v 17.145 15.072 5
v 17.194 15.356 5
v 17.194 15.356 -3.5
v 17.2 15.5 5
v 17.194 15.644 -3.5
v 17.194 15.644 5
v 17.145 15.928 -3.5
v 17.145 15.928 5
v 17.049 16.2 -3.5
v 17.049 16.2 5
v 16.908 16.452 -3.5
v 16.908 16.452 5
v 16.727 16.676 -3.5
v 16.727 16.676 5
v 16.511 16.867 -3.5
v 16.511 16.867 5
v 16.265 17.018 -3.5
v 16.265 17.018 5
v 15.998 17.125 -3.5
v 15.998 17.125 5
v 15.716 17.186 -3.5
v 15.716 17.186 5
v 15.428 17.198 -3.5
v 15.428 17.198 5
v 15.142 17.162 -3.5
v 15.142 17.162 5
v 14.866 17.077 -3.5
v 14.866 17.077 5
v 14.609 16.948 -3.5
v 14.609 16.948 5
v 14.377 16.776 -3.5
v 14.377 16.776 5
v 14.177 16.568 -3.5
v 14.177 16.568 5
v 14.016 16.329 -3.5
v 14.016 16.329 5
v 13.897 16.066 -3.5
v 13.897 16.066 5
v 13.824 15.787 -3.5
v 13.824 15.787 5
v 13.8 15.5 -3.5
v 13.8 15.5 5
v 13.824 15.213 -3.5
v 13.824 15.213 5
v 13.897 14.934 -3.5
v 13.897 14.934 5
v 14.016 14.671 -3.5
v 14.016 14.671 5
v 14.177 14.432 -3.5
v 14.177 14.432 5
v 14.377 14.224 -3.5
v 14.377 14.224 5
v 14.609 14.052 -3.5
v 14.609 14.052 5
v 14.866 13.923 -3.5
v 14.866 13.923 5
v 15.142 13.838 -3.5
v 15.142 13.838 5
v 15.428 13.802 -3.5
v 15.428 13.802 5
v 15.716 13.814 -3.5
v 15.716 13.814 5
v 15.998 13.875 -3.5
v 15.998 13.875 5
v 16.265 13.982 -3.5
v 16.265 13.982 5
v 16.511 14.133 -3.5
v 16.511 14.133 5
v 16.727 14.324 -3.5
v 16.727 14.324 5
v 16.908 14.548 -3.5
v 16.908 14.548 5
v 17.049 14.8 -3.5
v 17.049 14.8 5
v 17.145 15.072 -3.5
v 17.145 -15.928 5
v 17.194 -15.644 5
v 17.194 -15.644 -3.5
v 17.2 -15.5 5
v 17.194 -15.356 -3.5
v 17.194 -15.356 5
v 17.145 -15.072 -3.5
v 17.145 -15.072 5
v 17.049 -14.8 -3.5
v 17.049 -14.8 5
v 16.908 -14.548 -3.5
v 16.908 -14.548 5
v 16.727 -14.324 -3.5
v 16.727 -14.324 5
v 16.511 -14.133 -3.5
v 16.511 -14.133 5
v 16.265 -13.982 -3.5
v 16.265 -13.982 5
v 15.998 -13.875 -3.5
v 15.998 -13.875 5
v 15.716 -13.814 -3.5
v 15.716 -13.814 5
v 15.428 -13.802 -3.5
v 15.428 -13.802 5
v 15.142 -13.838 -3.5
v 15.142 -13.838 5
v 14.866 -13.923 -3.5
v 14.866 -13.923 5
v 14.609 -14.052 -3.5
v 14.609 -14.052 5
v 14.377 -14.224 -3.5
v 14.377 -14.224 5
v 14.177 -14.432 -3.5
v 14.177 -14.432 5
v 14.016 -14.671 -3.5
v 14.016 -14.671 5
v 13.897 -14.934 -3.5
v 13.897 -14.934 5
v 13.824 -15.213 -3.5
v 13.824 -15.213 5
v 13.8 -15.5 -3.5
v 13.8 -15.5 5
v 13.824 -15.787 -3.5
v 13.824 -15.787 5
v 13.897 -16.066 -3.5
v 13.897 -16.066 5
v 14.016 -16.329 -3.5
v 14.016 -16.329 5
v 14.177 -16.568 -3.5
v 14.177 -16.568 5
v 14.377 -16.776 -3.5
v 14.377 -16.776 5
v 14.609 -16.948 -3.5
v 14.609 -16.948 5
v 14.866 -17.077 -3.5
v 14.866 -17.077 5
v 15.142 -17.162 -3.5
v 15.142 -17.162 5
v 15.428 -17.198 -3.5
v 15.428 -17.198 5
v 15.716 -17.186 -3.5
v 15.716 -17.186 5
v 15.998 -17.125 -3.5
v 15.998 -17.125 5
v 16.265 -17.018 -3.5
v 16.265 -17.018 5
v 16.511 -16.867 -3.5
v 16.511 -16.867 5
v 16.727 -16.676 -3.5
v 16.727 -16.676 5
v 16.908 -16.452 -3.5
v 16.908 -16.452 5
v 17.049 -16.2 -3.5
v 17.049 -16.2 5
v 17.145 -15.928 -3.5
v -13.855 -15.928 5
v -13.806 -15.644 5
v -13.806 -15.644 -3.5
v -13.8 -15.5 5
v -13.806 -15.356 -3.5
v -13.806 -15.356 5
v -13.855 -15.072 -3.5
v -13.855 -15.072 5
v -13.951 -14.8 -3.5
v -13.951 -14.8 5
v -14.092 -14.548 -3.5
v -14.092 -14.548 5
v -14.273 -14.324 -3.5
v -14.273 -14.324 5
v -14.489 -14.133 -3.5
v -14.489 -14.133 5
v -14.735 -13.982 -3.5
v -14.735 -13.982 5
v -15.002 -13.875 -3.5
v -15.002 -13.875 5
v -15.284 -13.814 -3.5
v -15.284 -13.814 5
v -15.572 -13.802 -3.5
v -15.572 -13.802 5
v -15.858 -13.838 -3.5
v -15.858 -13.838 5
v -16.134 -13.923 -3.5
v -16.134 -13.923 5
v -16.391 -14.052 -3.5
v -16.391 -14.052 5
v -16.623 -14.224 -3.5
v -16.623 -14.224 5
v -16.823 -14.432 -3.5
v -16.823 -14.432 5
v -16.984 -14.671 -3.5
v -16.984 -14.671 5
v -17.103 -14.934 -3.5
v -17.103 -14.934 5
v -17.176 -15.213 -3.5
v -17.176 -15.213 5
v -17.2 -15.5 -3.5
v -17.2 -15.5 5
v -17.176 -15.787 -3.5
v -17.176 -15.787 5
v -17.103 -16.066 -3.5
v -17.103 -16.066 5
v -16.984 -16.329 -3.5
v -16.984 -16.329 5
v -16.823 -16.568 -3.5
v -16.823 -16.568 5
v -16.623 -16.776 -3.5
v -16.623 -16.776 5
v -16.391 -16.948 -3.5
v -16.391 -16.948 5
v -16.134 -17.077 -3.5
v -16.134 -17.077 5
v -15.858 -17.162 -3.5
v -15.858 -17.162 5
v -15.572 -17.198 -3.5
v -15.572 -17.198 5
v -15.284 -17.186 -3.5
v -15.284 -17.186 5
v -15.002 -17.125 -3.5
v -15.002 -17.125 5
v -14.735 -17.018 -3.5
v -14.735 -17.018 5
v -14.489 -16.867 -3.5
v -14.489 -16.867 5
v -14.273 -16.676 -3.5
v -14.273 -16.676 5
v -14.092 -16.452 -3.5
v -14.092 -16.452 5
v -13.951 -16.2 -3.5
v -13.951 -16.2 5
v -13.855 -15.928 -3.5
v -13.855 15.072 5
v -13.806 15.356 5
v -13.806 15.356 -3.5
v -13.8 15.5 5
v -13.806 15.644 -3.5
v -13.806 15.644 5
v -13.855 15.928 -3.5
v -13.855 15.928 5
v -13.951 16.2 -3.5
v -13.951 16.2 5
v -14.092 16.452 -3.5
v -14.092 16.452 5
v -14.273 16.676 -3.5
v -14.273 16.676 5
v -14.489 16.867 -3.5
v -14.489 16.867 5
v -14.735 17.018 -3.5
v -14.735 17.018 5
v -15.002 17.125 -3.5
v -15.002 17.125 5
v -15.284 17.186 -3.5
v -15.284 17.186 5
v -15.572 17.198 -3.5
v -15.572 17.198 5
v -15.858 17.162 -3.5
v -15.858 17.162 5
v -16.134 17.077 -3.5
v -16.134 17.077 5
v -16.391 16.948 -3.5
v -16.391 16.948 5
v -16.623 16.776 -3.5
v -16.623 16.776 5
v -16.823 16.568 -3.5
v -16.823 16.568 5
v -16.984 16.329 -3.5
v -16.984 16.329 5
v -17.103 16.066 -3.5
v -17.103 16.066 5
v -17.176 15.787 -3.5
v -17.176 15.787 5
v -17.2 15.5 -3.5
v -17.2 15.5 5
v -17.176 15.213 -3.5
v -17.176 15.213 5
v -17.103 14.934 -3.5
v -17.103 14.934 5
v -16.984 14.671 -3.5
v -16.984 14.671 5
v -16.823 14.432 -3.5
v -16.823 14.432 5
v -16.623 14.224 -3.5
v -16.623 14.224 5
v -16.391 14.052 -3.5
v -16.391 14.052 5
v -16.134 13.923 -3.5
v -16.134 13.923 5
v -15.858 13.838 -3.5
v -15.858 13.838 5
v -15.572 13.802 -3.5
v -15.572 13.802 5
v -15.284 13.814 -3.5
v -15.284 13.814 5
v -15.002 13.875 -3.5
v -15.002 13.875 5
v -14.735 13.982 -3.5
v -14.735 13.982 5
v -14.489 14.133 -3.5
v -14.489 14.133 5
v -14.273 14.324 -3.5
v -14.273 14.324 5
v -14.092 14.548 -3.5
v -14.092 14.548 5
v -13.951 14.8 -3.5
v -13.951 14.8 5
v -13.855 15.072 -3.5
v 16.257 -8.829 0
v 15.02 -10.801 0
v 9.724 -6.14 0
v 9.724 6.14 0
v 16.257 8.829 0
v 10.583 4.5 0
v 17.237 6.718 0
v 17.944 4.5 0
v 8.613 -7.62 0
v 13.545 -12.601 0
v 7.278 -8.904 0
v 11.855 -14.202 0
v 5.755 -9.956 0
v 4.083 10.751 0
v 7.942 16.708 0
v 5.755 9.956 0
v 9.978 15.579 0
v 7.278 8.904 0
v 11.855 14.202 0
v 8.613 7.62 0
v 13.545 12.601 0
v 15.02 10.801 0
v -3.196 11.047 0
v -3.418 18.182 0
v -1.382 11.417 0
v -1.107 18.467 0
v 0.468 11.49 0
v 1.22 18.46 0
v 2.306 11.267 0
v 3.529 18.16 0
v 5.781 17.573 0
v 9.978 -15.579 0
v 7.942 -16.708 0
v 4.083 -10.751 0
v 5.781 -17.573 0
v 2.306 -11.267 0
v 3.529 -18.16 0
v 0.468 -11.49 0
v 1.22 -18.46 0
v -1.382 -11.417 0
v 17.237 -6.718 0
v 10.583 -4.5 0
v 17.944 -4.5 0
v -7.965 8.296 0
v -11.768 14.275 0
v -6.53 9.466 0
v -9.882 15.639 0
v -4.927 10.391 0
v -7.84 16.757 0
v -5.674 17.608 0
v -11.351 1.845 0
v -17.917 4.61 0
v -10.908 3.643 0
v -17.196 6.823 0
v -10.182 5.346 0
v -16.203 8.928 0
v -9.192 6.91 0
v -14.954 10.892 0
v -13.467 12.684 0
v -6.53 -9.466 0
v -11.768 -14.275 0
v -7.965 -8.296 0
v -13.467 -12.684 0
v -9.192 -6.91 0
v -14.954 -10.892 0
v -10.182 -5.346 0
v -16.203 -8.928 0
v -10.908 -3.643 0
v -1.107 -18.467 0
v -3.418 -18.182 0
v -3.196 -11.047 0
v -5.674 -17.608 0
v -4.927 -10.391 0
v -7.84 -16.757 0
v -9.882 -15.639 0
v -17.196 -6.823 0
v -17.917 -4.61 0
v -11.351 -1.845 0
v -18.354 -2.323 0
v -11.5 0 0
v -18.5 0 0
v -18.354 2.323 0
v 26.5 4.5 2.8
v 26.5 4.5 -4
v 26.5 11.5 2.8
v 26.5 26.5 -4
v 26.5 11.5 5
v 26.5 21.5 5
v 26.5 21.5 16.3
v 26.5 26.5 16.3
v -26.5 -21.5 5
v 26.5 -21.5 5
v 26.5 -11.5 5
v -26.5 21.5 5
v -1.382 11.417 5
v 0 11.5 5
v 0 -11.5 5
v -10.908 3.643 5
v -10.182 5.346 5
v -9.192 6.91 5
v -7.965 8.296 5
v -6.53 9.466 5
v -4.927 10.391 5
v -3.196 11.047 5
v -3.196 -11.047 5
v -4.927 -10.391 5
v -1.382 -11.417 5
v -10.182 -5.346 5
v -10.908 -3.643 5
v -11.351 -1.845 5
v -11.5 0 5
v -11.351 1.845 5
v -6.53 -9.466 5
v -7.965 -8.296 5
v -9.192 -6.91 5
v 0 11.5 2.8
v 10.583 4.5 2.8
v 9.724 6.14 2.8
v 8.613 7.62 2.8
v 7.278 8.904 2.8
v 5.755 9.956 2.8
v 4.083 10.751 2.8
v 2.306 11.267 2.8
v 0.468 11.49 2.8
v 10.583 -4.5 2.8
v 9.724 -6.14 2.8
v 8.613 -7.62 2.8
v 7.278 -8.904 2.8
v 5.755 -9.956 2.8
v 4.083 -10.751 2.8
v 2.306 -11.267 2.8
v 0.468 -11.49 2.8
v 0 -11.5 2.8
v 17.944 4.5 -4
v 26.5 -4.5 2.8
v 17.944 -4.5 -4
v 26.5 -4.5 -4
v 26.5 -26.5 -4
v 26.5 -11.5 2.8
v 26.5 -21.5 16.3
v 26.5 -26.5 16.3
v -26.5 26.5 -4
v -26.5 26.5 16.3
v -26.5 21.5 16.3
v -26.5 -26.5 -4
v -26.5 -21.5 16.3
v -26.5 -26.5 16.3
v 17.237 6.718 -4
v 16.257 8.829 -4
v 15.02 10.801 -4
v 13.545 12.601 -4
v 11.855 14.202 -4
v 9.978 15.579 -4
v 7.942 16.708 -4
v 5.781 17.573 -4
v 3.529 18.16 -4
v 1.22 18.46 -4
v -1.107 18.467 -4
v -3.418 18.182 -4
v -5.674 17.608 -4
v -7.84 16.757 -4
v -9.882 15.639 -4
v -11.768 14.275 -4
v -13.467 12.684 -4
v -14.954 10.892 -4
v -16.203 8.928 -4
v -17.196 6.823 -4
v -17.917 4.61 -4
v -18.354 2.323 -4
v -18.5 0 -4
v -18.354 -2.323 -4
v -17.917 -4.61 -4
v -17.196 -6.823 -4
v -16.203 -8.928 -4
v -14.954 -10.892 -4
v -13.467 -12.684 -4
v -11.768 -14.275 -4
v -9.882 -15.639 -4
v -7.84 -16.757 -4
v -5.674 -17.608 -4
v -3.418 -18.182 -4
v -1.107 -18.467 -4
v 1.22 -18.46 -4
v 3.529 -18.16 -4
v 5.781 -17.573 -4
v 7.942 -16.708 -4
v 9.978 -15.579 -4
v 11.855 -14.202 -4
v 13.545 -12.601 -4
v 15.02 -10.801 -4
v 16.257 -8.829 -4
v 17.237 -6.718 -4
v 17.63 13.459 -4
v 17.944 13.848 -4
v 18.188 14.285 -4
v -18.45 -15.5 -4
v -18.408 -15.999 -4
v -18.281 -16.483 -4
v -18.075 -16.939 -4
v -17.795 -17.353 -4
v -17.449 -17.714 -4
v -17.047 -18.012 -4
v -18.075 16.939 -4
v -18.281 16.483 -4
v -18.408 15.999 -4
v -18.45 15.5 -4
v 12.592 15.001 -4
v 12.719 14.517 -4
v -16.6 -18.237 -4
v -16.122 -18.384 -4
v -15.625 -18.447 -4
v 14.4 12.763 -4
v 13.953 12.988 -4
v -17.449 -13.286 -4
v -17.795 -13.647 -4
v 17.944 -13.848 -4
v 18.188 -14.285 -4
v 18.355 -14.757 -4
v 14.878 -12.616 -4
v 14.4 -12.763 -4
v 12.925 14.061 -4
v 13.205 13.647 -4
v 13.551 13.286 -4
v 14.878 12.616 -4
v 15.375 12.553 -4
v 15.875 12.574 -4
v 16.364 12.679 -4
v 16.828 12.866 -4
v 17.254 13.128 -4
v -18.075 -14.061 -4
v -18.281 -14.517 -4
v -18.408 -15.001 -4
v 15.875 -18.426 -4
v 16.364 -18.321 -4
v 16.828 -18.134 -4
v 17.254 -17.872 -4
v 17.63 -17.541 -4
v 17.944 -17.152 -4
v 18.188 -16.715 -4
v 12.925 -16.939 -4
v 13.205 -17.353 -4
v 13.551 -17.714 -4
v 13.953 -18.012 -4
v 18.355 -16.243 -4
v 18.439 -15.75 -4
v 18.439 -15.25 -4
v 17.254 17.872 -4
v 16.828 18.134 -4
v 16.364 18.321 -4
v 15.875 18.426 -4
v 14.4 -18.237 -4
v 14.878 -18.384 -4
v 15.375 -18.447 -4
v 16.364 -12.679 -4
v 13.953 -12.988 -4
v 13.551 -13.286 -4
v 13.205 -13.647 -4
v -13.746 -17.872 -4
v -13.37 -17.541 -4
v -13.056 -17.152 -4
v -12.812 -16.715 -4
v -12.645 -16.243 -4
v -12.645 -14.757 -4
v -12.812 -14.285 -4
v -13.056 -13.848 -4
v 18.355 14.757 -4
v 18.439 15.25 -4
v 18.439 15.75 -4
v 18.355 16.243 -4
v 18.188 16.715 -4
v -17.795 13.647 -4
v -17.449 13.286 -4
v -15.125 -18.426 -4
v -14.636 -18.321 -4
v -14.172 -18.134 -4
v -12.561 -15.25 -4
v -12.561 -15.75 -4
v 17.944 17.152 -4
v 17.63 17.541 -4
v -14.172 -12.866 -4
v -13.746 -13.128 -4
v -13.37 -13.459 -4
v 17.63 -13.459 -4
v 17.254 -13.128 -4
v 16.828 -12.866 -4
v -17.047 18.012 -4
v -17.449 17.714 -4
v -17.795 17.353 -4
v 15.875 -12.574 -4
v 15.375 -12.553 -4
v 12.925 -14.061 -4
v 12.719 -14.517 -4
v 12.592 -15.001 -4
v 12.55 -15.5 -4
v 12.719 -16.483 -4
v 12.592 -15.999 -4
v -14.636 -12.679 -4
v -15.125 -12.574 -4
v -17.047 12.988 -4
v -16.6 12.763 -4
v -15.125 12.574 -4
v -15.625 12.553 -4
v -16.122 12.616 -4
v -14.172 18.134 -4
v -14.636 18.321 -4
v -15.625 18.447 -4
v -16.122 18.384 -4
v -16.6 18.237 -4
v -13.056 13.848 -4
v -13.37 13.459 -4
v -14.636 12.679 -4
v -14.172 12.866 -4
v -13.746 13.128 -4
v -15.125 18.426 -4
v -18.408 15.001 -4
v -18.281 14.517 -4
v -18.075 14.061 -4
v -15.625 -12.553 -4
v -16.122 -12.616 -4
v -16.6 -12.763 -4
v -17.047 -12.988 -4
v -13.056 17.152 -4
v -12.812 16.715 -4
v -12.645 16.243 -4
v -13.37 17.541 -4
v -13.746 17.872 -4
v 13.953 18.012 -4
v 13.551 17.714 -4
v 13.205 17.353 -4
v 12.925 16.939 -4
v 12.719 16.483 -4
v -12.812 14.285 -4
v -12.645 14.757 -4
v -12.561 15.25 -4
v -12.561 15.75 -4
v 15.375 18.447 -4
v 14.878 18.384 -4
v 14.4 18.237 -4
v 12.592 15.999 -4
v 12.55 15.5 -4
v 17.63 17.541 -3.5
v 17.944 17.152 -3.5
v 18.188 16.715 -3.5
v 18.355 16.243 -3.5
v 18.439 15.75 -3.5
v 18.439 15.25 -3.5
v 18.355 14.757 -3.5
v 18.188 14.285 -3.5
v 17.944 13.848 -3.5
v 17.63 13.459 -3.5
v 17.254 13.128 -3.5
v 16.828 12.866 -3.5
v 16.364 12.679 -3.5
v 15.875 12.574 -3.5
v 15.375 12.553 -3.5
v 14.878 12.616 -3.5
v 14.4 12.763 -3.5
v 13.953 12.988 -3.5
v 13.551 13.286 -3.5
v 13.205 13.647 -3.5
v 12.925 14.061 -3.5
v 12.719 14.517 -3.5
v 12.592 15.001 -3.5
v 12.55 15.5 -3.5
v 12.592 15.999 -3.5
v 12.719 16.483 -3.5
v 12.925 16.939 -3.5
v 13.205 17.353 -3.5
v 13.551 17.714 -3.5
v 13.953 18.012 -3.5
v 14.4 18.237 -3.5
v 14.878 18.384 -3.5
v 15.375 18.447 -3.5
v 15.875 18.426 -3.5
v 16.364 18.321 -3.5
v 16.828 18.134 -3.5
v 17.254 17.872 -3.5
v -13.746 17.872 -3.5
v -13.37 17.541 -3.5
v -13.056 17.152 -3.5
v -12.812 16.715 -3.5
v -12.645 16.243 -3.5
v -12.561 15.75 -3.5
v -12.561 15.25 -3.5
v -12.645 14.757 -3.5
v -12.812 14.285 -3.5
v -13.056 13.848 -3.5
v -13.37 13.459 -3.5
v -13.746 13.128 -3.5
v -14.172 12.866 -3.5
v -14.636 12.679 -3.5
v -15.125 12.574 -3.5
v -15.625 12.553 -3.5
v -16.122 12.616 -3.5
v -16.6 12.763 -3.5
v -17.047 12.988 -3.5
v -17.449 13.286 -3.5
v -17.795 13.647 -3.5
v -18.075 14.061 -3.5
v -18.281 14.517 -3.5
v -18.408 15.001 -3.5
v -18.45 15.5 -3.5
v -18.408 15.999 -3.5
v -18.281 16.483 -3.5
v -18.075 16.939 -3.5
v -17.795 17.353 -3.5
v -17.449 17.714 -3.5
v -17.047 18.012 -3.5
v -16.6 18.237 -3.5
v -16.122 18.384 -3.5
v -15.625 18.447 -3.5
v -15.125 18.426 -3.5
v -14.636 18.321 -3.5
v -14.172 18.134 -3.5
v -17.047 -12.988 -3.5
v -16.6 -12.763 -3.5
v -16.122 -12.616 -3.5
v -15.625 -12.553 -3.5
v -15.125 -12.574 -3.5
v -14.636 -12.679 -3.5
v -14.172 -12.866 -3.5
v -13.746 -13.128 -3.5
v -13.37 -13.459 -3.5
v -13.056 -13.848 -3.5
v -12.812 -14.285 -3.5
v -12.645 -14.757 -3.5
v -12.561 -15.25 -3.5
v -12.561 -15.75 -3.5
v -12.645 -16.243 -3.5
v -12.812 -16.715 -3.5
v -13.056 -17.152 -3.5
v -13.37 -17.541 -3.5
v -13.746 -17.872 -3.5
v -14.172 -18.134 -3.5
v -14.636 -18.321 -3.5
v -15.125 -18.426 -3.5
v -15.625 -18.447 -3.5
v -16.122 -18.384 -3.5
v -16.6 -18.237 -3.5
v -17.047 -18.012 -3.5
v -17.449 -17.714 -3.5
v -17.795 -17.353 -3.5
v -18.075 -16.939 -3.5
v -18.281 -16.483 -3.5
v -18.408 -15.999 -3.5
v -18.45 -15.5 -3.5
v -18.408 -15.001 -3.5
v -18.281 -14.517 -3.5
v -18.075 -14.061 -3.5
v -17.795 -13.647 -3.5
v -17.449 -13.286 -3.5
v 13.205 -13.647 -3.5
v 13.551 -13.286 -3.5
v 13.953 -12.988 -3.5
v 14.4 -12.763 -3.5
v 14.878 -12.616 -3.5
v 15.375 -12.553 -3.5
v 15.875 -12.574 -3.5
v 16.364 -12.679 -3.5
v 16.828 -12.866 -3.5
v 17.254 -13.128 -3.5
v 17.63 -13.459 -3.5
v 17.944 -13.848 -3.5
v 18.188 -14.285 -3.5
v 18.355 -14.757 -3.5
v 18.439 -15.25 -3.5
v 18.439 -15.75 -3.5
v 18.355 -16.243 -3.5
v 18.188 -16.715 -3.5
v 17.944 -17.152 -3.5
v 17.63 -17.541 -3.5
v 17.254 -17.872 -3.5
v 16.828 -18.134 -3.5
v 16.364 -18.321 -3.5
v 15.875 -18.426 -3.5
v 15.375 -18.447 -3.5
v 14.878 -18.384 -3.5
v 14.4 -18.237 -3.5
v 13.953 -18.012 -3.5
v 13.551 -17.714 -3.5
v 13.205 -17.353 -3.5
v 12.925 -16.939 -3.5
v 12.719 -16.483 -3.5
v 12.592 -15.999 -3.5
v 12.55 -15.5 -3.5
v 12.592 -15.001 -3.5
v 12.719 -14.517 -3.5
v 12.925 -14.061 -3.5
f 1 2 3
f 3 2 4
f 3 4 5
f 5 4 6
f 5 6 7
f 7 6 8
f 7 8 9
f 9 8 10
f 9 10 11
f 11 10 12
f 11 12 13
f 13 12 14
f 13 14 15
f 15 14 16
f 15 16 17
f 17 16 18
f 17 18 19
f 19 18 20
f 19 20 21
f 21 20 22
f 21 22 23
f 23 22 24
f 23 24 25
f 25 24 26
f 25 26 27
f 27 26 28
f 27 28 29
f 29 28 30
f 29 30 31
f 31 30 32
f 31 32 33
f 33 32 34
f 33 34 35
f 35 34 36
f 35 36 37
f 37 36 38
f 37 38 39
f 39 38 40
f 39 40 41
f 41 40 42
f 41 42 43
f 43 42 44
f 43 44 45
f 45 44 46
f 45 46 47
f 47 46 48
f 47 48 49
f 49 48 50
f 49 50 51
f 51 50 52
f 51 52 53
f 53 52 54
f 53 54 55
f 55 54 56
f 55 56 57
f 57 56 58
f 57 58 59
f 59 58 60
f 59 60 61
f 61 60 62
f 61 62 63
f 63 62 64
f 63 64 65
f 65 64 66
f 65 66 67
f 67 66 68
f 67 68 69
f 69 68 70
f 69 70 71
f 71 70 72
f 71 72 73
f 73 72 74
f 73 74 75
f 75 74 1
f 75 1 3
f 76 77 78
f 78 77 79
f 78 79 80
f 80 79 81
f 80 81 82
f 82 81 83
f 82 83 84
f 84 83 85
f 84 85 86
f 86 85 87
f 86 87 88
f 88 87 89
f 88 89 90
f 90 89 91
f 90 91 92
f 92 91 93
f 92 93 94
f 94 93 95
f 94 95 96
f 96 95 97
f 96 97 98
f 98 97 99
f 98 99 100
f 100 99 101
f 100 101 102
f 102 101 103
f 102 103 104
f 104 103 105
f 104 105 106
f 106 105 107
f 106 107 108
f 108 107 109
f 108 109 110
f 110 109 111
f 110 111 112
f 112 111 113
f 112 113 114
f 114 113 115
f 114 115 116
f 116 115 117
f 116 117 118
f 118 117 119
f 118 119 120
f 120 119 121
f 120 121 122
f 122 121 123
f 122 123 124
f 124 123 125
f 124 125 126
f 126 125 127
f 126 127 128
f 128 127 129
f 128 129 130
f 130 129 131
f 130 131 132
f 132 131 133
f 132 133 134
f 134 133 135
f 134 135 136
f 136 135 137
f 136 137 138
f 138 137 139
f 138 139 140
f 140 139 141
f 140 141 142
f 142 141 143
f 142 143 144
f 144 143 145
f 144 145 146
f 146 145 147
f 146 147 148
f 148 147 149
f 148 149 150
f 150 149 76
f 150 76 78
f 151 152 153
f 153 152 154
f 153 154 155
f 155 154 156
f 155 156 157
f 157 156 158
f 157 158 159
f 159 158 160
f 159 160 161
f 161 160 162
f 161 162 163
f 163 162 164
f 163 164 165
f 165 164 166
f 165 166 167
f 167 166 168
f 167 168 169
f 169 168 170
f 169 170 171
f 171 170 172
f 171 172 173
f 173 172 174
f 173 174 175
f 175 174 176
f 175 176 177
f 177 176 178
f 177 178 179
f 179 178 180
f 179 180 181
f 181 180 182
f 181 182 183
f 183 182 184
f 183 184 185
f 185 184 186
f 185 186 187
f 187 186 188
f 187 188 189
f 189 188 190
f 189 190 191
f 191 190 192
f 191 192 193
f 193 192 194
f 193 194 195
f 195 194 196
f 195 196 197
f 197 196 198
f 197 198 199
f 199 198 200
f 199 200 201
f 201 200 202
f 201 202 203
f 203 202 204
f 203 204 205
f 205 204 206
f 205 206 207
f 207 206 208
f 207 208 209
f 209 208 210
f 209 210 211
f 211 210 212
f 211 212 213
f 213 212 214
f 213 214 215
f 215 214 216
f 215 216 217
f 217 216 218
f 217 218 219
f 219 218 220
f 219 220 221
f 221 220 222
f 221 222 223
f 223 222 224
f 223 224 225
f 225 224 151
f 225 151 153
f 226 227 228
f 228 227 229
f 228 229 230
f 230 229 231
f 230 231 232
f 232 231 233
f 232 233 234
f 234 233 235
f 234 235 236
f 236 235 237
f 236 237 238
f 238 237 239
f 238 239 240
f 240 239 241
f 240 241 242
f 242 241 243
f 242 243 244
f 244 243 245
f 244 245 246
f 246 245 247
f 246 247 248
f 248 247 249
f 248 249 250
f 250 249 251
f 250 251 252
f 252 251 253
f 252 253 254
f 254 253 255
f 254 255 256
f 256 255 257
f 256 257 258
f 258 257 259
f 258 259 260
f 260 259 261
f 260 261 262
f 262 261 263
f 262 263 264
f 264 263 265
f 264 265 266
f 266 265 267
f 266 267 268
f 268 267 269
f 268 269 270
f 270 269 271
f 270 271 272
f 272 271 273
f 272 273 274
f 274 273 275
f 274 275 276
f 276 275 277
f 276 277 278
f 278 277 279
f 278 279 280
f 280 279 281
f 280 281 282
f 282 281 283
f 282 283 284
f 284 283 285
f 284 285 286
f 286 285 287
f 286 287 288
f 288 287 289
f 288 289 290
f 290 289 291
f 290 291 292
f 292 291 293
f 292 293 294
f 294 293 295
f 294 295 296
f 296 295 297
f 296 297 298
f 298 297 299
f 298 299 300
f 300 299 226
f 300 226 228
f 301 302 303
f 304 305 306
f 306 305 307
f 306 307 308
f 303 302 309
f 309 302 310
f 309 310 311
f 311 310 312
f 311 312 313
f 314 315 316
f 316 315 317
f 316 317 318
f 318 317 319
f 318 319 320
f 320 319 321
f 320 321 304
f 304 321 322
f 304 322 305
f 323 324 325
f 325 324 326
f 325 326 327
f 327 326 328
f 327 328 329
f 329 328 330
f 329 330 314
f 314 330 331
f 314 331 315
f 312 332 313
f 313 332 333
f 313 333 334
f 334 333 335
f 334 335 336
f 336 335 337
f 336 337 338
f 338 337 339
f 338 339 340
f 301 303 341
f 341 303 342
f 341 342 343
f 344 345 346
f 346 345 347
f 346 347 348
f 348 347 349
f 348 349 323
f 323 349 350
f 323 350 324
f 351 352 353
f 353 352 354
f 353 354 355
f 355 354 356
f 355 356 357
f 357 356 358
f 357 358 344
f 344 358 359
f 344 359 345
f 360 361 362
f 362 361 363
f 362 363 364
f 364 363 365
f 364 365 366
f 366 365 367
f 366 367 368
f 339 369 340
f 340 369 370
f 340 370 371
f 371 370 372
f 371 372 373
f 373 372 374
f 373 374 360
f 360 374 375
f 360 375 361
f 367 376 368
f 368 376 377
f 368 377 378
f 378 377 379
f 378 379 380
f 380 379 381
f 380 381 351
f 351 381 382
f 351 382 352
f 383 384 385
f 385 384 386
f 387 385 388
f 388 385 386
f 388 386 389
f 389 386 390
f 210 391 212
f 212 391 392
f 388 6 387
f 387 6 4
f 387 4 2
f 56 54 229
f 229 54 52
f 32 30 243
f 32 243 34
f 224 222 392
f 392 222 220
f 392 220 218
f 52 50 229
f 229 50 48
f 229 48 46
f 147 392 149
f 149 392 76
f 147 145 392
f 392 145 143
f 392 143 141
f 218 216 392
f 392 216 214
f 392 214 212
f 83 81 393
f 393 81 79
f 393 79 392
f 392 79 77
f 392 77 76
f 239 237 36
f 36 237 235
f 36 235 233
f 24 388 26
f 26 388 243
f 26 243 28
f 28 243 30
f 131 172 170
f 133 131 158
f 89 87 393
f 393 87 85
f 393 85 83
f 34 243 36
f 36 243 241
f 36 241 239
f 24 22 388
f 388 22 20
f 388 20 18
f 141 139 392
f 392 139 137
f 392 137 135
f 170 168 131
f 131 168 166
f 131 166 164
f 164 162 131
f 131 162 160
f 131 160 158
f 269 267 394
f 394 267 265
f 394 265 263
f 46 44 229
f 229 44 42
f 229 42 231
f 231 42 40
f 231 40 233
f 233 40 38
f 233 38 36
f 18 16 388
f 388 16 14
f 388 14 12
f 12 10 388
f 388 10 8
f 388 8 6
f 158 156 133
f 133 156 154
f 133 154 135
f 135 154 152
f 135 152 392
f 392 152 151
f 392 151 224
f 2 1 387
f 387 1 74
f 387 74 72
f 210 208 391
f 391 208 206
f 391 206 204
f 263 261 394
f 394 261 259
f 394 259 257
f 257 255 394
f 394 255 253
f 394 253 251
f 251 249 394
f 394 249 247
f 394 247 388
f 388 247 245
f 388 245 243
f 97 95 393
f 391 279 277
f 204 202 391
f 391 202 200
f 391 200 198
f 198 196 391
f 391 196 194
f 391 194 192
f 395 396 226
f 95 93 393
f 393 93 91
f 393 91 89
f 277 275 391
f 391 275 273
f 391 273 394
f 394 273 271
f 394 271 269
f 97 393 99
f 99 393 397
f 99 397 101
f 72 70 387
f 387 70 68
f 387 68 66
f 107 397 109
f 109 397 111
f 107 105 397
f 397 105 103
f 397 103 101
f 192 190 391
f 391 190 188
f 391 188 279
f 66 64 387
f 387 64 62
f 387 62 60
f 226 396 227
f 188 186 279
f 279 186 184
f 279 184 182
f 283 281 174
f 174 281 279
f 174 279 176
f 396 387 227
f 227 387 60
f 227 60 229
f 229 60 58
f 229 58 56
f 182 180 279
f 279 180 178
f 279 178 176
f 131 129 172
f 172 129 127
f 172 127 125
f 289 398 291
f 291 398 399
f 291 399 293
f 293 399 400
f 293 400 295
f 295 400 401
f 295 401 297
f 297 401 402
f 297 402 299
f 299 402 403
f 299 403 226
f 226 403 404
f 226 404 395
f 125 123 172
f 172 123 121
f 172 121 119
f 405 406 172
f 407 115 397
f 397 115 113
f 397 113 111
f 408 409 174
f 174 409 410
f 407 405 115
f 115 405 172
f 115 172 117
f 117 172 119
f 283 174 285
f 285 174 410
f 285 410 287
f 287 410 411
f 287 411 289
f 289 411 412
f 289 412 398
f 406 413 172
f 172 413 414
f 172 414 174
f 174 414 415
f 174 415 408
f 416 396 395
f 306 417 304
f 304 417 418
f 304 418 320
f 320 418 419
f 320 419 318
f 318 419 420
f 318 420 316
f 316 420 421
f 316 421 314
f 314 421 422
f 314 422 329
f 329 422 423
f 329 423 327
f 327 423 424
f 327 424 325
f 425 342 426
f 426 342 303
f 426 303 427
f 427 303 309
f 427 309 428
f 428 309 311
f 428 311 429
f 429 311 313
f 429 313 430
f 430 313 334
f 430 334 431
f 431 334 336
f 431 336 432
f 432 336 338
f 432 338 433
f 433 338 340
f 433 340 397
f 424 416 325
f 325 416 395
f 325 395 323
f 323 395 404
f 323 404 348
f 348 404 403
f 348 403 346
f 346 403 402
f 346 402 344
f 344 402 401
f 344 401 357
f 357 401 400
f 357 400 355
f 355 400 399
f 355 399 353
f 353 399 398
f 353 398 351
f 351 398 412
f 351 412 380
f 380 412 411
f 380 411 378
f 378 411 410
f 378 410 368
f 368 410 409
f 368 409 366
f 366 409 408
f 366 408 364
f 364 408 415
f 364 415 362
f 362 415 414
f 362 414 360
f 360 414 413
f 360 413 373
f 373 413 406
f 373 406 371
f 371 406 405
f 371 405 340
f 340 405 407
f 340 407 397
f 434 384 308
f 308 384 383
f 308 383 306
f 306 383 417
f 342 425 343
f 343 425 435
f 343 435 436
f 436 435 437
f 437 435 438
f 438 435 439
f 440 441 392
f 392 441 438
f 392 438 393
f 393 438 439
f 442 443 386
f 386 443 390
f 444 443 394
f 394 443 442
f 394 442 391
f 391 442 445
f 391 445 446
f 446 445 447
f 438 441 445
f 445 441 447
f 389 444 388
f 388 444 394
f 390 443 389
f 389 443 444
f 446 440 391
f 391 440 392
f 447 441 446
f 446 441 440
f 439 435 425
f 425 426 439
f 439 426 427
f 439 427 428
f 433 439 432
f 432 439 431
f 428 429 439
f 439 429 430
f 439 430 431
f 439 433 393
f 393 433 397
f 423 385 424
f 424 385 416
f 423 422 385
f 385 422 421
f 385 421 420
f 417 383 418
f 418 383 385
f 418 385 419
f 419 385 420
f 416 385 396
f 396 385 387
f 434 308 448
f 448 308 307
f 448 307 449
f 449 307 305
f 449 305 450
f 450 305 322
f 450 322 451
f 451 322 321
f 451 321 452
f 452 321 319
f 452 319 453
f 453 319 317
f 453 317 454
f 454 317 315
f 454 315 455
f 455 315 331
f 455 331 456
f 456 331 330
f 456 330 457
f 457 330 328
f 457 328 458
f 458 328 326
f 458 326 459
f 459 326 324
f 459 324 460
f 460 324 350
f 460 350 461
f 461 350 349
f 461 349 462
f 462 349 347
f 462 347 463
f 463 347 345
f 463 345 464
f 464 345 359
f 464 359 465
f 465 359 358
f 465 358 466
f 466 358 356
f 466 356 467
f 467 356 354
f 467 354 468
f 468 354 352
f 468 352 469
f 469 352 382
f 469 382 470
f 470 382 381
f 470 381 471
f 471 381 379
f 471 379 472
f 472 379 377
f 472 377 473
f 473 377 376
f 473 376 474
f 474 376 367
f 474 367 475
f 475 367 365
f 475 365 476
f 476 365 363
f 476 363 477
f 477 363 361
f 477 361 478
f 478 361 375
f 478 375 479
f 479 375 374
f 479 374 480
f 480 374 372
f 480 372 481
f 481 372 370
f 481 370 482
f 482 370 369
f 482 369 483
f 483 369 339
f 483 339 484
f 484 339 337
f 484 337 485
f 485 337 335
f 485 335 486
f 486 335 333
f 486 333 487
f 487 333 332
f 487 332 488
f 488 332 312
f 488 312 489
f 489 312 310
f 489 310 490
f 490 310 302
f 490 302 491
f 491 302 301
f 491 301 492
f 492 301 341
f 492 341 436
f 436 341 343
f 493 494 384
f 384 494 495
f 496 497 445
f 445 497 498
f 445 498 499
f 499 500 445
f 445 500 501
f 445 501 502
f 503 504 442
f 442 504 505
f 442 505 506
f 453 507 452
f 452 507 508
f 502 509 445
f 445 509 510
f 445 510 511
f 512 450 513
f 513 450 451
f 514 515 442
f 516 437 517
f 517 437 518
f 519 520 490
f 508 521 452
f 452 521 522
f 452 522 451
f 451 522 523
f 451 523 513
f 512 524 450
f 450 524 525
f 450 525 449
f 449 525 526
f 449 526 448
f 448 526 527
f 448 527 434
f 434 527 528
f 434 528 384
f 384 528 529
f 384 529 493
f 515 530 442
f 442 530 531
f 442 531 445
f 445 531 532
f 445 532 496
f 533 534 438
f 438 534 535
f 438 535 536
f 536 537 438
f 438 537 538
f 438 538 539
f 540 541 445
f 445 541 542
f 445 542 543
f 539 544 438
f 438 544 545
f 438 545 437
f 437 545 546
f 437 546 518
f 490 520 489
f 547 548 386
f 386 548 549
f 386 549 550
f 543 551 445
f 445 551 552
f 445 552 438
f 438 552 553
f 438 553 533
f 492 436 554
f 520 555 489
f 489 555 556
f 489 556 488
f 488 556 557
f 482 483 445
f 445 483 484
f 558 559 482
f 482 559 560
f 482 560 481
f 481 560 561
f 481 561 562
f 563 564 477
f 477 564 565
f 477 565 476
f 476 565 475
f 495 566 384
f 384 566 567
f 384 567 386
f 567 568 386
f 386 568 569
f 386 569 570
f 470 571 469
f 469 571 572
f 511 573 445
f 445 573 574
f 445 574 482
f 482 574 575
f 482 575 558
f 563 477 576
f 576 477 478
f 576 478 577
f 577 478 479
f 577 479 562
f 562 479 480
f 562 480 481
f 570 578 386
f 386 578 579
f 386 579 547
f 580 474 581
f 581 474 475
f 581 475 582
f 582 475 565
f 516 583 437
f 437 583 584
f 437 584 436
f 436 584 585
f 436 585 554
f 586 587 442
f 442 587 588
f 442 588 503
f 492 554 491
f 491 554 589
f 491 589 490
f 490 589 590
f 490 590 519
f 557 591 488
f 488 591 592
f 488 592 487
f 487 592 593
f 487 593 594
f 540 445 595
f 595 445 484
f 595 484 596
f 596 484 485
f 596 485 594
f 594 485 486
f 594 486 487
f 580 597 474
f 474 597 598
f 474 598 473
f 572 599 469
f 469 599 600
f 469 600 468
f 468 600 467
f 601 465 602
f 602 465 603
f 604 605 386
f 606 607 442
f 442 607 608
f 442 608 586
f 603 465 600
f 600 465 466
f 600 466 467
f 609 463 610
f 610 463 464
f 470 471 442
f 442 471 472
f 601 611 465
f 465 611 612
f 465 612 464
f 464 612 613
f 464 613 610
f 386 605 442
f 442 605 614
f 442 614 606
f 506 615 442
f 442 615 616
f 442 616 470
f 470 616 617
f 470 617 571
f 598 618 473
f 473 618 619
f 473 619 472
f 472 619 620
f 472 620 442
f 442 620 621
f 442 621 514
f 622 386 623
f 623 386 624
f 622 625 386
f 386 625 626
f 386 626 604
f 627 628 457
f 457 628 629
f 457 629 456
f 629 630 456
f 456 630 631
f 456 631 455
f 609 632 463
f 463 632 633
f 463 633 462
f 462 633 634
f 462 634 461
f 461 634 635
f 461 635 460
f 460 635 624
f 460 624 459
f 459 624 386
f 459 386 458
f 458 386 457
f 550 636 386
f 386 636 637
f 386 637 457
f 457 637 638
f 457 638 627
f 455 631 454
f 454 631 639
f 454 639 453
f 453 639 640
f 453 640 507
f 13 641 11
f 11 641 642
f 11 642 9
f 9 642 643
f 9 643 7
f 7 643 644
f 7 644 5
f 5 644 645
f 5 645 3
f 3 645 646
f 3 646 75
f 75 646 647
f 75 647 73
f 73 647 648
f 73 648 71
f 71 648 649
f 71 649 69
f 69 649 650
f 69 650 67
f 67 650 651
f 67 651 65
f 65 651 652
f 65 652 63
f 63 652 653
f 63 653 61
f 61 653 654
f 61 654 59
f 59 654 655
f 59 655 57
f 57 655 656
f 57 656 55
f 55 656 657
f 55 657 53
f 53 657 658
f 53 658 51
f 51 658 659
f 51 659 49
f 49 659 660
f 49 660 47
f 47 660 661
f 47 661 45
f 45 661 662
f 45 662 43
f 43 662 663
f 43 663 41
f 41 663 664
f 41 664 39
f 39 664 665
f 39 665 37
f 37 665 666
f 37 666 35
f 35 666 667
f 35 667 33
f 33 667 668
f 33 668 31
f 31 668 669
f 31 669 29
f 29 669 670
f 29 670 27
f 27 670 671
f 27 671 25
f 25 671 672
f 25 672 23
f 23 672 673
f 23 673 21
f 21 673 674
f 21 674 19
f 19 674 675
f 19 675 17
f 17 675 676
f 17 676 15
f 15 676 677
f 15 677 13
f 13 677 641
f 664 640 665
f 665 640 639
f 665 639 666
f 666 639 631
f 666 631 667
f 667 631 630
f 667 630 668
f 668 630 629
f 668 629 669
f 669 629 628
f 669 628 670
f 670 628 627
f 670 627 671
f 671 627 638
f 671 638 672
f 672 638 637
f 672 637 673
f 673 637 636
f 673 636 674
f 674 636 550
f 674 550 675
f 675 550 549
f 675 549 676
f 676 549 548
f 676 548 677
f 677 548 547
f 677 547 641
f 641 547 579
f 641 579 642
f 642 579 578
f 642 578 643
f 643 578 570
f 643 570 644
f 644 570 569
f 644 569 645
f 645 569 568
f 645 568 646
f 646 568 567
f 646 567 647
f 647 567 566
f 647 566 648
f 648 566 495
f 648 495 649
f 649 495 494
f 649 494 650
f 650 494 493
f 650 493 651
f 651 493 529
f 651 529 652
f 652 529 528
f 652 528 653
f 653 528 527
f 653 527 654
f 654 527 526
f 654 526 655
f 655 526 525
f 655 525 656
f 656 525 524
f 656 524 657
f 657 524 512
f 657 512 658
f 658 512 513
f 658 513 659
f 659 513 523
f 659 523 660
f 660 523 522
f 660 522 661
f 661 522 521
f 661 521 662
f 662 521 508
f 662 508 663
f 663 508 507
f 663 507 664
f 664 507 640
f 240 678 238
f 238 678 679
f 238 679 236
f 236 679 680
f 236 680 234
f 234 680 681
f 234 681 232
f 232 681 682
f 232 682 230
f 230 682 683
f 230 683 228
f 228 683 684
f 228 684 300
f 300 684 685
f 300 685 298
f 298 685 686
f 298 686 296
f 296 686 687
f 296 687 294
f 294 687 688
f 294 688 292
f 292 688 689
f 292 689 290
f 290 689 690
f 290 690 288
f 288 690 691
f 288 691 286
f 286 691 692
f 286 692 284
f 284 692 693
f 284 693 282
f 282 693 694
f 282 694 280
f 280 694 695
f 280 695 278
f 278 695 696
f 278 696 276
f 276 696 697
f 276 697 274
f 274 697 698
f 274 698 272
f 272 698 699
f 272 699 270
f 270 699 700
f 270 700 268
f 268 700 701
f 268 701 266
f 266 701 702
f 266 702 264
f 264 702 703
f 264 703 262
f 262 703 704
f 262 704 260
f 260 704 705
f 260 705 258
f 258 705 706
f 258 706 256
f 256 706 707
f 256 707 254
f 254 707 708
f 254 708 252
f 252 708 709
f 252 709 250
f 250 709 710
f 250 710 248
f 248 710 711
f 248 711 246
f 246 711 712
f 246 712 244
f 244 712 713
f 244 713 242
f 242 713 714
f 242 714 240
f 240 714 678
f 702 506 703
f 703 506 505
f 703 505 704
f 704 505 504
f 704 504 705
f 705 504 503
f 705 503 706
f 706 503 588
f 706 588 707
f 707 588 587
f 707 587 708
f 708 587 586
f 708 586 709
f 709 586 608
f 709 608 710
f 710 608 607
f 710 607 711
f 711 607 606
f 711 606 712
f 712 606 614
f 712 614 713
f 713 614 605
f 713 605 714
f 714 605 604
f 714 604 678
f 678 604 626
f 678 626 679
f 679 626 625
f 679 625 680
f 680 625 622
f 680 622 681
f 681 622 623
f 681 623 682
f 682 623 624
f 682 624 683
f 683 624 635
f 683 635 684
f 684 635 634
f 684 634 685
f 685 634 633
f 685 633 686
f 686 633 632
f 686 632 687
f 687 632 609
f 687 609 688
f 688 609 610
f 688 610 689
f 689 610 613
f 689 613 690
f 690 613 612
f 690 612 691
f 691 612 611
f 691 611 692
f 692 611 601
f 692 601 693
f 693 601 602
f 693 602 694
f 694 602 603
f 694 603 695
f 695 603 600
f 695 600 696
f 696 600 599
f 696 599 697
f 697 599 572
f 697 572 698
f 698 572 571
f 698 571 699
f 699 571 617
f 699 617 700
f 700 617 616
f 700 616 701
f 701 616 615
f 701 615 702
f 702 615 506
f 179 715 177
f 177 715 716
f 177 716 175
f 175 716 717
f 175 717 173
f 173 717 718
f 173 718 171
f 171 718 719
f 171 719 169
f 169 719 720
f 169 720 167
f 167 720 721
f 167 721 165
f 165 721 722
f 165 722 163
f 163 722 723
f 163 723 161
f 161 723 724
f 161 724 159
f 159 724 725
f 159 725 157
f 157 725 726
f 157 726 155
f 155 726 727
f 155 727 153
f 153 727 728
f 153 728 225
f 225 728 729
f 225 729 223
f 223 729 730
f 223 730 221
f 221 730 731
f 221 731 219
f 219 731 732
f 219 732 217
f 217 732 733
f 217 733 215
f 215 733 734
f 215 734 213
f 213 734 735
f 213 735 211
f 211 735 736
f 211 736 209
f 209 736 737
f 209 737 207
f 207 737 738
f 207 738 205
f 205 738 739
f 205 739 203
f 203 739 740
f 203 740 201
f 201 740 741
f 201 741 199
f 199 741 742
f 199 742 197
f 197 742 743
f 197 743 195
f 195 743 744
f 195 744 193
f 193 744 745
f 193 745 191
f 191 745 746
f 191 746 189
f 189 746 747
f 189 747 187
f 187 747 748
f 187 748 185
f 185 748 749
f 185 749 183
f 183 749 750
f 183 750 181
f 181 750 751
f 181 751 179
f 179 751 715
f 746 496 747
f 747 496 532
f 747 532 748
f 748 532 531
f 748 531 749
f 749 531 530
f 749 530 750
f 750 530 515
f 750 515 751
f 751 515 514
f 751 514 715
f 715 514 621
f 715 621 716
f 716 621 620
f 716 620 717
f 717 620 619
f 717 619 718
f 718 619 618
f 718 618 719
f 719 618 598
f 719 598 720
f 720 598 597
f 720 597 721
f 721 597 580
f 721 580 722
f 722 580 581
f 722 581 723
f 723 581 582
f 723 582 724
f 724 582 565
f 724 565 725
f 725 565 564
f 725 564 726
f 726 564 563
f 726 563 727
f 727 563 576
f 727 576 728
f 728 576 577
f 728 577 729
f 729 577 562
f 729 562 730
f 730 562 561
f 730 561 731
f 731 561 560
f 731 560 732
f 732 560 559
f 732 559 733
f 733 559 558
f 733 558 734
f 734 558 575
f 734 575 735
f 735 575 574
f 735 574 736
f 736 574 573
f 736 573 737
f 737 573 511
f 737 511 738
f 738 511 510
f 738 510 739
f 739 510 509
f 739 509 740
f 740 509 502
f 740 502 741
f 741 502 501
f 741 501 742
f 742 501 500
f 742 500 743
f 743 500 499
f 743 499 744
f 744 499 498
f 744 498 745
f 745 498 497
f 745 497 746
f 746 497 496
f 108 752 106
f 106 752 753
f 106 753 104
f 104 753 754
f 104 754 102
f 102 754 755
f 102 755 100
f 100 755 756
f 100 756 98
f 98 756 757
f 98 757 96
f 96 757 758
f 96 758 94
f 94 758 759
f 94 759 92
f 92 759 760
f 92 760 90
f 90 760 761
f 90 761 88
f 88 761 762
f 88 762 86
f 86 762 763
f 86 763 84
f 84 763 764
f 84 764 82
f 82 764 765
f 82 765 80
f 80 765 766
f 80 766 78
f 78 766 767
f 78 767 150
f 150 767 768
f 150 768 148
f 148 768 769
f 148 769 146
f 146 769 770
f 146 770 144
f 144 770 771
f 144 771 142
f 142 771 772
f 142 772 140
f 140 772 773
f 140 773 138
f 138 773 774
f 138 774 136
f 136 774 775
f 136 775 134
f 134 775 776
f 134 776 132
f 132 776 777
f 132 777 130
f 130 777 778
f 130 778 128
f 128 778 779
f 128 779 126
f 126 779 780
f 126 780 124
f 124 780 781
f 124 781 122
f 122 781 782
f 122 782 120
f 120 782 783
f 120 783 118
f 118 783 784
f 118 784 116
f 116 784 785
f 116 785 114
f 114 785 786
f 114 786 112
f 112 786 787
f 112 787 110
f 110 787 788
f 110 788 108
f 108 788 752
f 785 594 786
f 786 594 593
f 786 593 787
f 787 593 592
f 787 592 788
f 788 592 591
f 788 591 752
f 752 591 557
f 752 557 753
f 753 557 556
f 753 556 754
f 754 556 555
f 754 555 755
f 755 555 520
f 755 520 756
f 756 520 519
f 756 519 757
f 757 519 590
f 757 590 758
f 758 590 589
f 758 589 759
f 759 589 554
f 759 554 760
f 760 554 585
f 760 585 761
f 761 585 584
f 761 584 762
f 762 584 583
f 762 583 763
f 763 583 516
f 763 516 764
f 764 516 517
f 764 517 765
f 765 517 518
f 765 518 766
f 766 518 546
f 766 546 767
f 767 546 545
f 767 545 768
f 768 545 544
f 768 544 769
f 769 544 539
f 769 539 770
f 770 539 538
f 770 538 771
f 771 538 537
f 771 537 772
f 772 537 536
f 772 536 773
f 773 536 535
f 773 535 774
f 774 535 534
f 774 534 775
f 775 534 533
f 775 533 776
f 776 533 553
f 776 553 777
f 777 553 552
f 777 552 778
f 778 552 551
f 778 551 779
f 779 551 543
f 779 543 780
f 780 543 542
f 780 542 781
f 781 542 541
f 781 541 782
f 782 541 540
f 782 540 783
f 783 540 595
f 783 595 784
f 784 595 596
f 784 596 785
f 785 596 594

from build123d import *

# Parameters (mm, degrees)
SKETCH1_W           = 53
SKETCH1_H           = 53
BOSS_EXTRUDE1_DEPTH = 5
BOSS_EXTRUDE2_DEPTH = 11.3
CUT_EXTRUDE1_DEPTH  = 40.143198643
CUT_EXTRUDE2_DEPTH  = 2.2
SKETCH5_R           = 1.7
CUT_EXTRUDE3_DEPTH  = 41.867958109
CIRPATTERN1_COUNT   = 4
BOSS_EXTRUDE3_START = 4
SKETCH6_R           = 1.7
BOSS_EXTRUDE3_DEPTH = 4
SKETCH7_R           = 2.95
CUT_EXTRUDE4_DEPTH  = 0.5


with BuildPart() as part:
    # Sketch1 → Boss-Extrude1 (new body)
    with BuildSketch(Plane.XY):
        Rectangle(SKETCH1_W, SKETCH1_H)
    extrude(amount=BOSS_EXTRUDE1_DEPTH)

    # Sketch2 → Boss-Extrude2 (add)
    with BuildSketch(Plane.XY.offset(5)):
        Polygon((-26.5, 21.5), (-21.5, 21.5), (21.5, 21.5), (26.5, 21.5), (26.5, 26.5), (-26.5, 26.5), align=None)
        Polygon((21.5, -21.5), (-21.5, -21.5), (-26.5, -21.5), (-26.5, -26.5), (26.5, -26.5), (26.5, -21.5), align=None)
    extrude(amount=BOSS_EXTRUDE2_DEPTH)

    # Sketch4 → Cut-Extrude1 (cut, through all)
    with BuildSketch(Plane.XY.offset(5)):
        with BuildLine():
            Line((26.5, 4.5), (10.583005244, 4.5))
            ThreePointArc((10.583005244, 4.5), (11.268419594, 2.296240372), (11.5, 0))
            ThreePointArc((11.5, 0), (11.268419594, -2.296240372), (10.583005244, -4.5))
            Line((10.583005244, -4.5), (26.5, -4.5))
            Line((26.5, -4.5), (26.5, 4.5))
        make_face()
        with BuildLine():
            Line((5.5, -4.5), (5.5, 4.5))
            Line((5.5, 4.5), (10.583005244, 4.5))
            ThreePointArc((10.583005244, 4.5), (-11.5, 0), (10.583005244, -4.5))
            Line((10.583005244, -4.5), (5.5, -4.5))
        make_face()
        with BuildLine():
            Line((10.583005244, 4.5), (5.5, 4.5))
            Line((5.5, 4.5), (5.5, -4.5))
            Line((5.5, -4.5), (10.583005244, -4.5))
            ThreePointArc((10.583005244, -4.5), (11.268419594, -2.296240372), (11.5, 0))
            ThreePointArc((11.5, 0), (11.268419594, 2.296240372), (10.583005244, 4.5))
        make_face()
    extrude(amount=-CUT_EXTRUDE1_DEPTH, mode=Mode.SUBTRACT)

    # Sketch3 → Cut-Extrude2 (cut)
    with BuildSketch(Plane.XY.offset(5)):
        with BuildLine():
            Line((26.5, 11.5), (2.1e-08, 11.5))
            ThreePointArc((2.1e-08, 11.5), (6.344288779, 9.591663041), (10.583005244, 4.5))
            Line((10.583005244, 4.5), (26.5, 4.5))
            Line((26.5, 4.5), (26.5, 11.5))
        make_face()
        with BuildLine():
            ThreePointArc((10.583005244, -4.5), (6.344288761, -9.591663053), (-2.3e-08, -11.5))
            Line((-2.3e-08, -11.5), (26.5, -11.5))
            Line((26.5, -11.5), (26.5, -4.5))
            Line((26.5, -4.5), (10.583005244, -4.5))
        make_face()
    extrude(amount=-CUT_EXTRUDE2_DEPTH, mode=Mode.SUBTRACT)

    # Sketch5 → Cut-Extrude3 (cut, through all)
    with BuildSketch(Plane(origin=(0, 0, 0), x_dir=(-1, 0, 0), z_dir=(0, 0, -1))):
        with Locations((-15.5, 15.5)):
            Circle(SKETCH5_R)
    cut_extrude3 = extrude(amount=-CUT_EXTRUDE3_DEPTH, mode=Mode.SUBTRACT)

    # CirPattern1: Cut-Extrude3 ×4 about axis
    cirpattern1_axis = Axis((0, 0, 0), (0, 0, 1))
    for i in range(1, CIRPATTERN1_COUNT):
        add(cut_extrude3.rotate(cirpattern1_axis, i * 360 / CIRPATTERN1_COUNT), mode=Mode.SUBTRACT)

    # Sketch6 → Boss-Extrude3 (add)
    with BuildSketch(Plane(origin=(0, 0, 0), x_dir=(-1, 0, 0), z_dir=(0, 0, -1)).offset(BOSS_EXTRUDE3_START)):
        with BuildLine():
            Line((-26.5, 26.5), (-26.5, 4.5))
            Line((-26.5, 4.5), (-17.944358445, 4.5))
            ThreePointArc((-17.944358445, 4.5), (2.267087203, 18.360564142), (18.5, 0))
            ThreePointArc((18.5, 0), (2.267087203, -18.360564142), (-17.944358445, -4.5))
            Line((-17.944358445, -4.5), (-26.5, -4.5))
            Line((-26.5, -4.5), (-26.5, -26.5))
            Line((-26.5, -26.5), (26.5, -26.5))
            Line((26.5, -26.5), (26.5, 26.5))
            Line((26.5, 26.5), (-26.5, 26.5))
        make_face()
        with Locations((-15.5, -15.5)):
            Circle(SKETCH6_R, mode=Mode.SUBTRACT)
        with Locations((15.5, -15.5)):
            Circle(SKETCH6_R, mode=Mode.SUBTRACT)
        with Locations((-15.5, 15.5)):
            Circle(SKETCH6_R, mode=Mode.SUBTRACT)
        with Locations((15.5, 15.5)):
            Circle(SKETCH6_R, mode=Mode.SUBTRACT)
    extrude(amount=-BOSS_EXTRUDE3_DEPTH)

    # Sketch7 → Cut-Extrude4 (cut)
    with BuildSketch(Plane(origin=(0, 0, -4), x_dir=(-1, 0, 0), z_dir=(0, 0, -1))):
        with Locations((-15.5, 15.5)):
            Circle(SKETCH7_R)
        with Locations((15.5, 15.5)):
            Circle(SKETCH7_R)
        with Locations((15.5, -15.5)):
            Circle(SKETCH7_R)
        with Locations((-15.5, -15.5)):
            Circle(SKETCH7_R)
    extrude(amount=-CUT_EXTRUDE4_DEPTH, mode=Mode.SUBTRACT)


solid = part.part
